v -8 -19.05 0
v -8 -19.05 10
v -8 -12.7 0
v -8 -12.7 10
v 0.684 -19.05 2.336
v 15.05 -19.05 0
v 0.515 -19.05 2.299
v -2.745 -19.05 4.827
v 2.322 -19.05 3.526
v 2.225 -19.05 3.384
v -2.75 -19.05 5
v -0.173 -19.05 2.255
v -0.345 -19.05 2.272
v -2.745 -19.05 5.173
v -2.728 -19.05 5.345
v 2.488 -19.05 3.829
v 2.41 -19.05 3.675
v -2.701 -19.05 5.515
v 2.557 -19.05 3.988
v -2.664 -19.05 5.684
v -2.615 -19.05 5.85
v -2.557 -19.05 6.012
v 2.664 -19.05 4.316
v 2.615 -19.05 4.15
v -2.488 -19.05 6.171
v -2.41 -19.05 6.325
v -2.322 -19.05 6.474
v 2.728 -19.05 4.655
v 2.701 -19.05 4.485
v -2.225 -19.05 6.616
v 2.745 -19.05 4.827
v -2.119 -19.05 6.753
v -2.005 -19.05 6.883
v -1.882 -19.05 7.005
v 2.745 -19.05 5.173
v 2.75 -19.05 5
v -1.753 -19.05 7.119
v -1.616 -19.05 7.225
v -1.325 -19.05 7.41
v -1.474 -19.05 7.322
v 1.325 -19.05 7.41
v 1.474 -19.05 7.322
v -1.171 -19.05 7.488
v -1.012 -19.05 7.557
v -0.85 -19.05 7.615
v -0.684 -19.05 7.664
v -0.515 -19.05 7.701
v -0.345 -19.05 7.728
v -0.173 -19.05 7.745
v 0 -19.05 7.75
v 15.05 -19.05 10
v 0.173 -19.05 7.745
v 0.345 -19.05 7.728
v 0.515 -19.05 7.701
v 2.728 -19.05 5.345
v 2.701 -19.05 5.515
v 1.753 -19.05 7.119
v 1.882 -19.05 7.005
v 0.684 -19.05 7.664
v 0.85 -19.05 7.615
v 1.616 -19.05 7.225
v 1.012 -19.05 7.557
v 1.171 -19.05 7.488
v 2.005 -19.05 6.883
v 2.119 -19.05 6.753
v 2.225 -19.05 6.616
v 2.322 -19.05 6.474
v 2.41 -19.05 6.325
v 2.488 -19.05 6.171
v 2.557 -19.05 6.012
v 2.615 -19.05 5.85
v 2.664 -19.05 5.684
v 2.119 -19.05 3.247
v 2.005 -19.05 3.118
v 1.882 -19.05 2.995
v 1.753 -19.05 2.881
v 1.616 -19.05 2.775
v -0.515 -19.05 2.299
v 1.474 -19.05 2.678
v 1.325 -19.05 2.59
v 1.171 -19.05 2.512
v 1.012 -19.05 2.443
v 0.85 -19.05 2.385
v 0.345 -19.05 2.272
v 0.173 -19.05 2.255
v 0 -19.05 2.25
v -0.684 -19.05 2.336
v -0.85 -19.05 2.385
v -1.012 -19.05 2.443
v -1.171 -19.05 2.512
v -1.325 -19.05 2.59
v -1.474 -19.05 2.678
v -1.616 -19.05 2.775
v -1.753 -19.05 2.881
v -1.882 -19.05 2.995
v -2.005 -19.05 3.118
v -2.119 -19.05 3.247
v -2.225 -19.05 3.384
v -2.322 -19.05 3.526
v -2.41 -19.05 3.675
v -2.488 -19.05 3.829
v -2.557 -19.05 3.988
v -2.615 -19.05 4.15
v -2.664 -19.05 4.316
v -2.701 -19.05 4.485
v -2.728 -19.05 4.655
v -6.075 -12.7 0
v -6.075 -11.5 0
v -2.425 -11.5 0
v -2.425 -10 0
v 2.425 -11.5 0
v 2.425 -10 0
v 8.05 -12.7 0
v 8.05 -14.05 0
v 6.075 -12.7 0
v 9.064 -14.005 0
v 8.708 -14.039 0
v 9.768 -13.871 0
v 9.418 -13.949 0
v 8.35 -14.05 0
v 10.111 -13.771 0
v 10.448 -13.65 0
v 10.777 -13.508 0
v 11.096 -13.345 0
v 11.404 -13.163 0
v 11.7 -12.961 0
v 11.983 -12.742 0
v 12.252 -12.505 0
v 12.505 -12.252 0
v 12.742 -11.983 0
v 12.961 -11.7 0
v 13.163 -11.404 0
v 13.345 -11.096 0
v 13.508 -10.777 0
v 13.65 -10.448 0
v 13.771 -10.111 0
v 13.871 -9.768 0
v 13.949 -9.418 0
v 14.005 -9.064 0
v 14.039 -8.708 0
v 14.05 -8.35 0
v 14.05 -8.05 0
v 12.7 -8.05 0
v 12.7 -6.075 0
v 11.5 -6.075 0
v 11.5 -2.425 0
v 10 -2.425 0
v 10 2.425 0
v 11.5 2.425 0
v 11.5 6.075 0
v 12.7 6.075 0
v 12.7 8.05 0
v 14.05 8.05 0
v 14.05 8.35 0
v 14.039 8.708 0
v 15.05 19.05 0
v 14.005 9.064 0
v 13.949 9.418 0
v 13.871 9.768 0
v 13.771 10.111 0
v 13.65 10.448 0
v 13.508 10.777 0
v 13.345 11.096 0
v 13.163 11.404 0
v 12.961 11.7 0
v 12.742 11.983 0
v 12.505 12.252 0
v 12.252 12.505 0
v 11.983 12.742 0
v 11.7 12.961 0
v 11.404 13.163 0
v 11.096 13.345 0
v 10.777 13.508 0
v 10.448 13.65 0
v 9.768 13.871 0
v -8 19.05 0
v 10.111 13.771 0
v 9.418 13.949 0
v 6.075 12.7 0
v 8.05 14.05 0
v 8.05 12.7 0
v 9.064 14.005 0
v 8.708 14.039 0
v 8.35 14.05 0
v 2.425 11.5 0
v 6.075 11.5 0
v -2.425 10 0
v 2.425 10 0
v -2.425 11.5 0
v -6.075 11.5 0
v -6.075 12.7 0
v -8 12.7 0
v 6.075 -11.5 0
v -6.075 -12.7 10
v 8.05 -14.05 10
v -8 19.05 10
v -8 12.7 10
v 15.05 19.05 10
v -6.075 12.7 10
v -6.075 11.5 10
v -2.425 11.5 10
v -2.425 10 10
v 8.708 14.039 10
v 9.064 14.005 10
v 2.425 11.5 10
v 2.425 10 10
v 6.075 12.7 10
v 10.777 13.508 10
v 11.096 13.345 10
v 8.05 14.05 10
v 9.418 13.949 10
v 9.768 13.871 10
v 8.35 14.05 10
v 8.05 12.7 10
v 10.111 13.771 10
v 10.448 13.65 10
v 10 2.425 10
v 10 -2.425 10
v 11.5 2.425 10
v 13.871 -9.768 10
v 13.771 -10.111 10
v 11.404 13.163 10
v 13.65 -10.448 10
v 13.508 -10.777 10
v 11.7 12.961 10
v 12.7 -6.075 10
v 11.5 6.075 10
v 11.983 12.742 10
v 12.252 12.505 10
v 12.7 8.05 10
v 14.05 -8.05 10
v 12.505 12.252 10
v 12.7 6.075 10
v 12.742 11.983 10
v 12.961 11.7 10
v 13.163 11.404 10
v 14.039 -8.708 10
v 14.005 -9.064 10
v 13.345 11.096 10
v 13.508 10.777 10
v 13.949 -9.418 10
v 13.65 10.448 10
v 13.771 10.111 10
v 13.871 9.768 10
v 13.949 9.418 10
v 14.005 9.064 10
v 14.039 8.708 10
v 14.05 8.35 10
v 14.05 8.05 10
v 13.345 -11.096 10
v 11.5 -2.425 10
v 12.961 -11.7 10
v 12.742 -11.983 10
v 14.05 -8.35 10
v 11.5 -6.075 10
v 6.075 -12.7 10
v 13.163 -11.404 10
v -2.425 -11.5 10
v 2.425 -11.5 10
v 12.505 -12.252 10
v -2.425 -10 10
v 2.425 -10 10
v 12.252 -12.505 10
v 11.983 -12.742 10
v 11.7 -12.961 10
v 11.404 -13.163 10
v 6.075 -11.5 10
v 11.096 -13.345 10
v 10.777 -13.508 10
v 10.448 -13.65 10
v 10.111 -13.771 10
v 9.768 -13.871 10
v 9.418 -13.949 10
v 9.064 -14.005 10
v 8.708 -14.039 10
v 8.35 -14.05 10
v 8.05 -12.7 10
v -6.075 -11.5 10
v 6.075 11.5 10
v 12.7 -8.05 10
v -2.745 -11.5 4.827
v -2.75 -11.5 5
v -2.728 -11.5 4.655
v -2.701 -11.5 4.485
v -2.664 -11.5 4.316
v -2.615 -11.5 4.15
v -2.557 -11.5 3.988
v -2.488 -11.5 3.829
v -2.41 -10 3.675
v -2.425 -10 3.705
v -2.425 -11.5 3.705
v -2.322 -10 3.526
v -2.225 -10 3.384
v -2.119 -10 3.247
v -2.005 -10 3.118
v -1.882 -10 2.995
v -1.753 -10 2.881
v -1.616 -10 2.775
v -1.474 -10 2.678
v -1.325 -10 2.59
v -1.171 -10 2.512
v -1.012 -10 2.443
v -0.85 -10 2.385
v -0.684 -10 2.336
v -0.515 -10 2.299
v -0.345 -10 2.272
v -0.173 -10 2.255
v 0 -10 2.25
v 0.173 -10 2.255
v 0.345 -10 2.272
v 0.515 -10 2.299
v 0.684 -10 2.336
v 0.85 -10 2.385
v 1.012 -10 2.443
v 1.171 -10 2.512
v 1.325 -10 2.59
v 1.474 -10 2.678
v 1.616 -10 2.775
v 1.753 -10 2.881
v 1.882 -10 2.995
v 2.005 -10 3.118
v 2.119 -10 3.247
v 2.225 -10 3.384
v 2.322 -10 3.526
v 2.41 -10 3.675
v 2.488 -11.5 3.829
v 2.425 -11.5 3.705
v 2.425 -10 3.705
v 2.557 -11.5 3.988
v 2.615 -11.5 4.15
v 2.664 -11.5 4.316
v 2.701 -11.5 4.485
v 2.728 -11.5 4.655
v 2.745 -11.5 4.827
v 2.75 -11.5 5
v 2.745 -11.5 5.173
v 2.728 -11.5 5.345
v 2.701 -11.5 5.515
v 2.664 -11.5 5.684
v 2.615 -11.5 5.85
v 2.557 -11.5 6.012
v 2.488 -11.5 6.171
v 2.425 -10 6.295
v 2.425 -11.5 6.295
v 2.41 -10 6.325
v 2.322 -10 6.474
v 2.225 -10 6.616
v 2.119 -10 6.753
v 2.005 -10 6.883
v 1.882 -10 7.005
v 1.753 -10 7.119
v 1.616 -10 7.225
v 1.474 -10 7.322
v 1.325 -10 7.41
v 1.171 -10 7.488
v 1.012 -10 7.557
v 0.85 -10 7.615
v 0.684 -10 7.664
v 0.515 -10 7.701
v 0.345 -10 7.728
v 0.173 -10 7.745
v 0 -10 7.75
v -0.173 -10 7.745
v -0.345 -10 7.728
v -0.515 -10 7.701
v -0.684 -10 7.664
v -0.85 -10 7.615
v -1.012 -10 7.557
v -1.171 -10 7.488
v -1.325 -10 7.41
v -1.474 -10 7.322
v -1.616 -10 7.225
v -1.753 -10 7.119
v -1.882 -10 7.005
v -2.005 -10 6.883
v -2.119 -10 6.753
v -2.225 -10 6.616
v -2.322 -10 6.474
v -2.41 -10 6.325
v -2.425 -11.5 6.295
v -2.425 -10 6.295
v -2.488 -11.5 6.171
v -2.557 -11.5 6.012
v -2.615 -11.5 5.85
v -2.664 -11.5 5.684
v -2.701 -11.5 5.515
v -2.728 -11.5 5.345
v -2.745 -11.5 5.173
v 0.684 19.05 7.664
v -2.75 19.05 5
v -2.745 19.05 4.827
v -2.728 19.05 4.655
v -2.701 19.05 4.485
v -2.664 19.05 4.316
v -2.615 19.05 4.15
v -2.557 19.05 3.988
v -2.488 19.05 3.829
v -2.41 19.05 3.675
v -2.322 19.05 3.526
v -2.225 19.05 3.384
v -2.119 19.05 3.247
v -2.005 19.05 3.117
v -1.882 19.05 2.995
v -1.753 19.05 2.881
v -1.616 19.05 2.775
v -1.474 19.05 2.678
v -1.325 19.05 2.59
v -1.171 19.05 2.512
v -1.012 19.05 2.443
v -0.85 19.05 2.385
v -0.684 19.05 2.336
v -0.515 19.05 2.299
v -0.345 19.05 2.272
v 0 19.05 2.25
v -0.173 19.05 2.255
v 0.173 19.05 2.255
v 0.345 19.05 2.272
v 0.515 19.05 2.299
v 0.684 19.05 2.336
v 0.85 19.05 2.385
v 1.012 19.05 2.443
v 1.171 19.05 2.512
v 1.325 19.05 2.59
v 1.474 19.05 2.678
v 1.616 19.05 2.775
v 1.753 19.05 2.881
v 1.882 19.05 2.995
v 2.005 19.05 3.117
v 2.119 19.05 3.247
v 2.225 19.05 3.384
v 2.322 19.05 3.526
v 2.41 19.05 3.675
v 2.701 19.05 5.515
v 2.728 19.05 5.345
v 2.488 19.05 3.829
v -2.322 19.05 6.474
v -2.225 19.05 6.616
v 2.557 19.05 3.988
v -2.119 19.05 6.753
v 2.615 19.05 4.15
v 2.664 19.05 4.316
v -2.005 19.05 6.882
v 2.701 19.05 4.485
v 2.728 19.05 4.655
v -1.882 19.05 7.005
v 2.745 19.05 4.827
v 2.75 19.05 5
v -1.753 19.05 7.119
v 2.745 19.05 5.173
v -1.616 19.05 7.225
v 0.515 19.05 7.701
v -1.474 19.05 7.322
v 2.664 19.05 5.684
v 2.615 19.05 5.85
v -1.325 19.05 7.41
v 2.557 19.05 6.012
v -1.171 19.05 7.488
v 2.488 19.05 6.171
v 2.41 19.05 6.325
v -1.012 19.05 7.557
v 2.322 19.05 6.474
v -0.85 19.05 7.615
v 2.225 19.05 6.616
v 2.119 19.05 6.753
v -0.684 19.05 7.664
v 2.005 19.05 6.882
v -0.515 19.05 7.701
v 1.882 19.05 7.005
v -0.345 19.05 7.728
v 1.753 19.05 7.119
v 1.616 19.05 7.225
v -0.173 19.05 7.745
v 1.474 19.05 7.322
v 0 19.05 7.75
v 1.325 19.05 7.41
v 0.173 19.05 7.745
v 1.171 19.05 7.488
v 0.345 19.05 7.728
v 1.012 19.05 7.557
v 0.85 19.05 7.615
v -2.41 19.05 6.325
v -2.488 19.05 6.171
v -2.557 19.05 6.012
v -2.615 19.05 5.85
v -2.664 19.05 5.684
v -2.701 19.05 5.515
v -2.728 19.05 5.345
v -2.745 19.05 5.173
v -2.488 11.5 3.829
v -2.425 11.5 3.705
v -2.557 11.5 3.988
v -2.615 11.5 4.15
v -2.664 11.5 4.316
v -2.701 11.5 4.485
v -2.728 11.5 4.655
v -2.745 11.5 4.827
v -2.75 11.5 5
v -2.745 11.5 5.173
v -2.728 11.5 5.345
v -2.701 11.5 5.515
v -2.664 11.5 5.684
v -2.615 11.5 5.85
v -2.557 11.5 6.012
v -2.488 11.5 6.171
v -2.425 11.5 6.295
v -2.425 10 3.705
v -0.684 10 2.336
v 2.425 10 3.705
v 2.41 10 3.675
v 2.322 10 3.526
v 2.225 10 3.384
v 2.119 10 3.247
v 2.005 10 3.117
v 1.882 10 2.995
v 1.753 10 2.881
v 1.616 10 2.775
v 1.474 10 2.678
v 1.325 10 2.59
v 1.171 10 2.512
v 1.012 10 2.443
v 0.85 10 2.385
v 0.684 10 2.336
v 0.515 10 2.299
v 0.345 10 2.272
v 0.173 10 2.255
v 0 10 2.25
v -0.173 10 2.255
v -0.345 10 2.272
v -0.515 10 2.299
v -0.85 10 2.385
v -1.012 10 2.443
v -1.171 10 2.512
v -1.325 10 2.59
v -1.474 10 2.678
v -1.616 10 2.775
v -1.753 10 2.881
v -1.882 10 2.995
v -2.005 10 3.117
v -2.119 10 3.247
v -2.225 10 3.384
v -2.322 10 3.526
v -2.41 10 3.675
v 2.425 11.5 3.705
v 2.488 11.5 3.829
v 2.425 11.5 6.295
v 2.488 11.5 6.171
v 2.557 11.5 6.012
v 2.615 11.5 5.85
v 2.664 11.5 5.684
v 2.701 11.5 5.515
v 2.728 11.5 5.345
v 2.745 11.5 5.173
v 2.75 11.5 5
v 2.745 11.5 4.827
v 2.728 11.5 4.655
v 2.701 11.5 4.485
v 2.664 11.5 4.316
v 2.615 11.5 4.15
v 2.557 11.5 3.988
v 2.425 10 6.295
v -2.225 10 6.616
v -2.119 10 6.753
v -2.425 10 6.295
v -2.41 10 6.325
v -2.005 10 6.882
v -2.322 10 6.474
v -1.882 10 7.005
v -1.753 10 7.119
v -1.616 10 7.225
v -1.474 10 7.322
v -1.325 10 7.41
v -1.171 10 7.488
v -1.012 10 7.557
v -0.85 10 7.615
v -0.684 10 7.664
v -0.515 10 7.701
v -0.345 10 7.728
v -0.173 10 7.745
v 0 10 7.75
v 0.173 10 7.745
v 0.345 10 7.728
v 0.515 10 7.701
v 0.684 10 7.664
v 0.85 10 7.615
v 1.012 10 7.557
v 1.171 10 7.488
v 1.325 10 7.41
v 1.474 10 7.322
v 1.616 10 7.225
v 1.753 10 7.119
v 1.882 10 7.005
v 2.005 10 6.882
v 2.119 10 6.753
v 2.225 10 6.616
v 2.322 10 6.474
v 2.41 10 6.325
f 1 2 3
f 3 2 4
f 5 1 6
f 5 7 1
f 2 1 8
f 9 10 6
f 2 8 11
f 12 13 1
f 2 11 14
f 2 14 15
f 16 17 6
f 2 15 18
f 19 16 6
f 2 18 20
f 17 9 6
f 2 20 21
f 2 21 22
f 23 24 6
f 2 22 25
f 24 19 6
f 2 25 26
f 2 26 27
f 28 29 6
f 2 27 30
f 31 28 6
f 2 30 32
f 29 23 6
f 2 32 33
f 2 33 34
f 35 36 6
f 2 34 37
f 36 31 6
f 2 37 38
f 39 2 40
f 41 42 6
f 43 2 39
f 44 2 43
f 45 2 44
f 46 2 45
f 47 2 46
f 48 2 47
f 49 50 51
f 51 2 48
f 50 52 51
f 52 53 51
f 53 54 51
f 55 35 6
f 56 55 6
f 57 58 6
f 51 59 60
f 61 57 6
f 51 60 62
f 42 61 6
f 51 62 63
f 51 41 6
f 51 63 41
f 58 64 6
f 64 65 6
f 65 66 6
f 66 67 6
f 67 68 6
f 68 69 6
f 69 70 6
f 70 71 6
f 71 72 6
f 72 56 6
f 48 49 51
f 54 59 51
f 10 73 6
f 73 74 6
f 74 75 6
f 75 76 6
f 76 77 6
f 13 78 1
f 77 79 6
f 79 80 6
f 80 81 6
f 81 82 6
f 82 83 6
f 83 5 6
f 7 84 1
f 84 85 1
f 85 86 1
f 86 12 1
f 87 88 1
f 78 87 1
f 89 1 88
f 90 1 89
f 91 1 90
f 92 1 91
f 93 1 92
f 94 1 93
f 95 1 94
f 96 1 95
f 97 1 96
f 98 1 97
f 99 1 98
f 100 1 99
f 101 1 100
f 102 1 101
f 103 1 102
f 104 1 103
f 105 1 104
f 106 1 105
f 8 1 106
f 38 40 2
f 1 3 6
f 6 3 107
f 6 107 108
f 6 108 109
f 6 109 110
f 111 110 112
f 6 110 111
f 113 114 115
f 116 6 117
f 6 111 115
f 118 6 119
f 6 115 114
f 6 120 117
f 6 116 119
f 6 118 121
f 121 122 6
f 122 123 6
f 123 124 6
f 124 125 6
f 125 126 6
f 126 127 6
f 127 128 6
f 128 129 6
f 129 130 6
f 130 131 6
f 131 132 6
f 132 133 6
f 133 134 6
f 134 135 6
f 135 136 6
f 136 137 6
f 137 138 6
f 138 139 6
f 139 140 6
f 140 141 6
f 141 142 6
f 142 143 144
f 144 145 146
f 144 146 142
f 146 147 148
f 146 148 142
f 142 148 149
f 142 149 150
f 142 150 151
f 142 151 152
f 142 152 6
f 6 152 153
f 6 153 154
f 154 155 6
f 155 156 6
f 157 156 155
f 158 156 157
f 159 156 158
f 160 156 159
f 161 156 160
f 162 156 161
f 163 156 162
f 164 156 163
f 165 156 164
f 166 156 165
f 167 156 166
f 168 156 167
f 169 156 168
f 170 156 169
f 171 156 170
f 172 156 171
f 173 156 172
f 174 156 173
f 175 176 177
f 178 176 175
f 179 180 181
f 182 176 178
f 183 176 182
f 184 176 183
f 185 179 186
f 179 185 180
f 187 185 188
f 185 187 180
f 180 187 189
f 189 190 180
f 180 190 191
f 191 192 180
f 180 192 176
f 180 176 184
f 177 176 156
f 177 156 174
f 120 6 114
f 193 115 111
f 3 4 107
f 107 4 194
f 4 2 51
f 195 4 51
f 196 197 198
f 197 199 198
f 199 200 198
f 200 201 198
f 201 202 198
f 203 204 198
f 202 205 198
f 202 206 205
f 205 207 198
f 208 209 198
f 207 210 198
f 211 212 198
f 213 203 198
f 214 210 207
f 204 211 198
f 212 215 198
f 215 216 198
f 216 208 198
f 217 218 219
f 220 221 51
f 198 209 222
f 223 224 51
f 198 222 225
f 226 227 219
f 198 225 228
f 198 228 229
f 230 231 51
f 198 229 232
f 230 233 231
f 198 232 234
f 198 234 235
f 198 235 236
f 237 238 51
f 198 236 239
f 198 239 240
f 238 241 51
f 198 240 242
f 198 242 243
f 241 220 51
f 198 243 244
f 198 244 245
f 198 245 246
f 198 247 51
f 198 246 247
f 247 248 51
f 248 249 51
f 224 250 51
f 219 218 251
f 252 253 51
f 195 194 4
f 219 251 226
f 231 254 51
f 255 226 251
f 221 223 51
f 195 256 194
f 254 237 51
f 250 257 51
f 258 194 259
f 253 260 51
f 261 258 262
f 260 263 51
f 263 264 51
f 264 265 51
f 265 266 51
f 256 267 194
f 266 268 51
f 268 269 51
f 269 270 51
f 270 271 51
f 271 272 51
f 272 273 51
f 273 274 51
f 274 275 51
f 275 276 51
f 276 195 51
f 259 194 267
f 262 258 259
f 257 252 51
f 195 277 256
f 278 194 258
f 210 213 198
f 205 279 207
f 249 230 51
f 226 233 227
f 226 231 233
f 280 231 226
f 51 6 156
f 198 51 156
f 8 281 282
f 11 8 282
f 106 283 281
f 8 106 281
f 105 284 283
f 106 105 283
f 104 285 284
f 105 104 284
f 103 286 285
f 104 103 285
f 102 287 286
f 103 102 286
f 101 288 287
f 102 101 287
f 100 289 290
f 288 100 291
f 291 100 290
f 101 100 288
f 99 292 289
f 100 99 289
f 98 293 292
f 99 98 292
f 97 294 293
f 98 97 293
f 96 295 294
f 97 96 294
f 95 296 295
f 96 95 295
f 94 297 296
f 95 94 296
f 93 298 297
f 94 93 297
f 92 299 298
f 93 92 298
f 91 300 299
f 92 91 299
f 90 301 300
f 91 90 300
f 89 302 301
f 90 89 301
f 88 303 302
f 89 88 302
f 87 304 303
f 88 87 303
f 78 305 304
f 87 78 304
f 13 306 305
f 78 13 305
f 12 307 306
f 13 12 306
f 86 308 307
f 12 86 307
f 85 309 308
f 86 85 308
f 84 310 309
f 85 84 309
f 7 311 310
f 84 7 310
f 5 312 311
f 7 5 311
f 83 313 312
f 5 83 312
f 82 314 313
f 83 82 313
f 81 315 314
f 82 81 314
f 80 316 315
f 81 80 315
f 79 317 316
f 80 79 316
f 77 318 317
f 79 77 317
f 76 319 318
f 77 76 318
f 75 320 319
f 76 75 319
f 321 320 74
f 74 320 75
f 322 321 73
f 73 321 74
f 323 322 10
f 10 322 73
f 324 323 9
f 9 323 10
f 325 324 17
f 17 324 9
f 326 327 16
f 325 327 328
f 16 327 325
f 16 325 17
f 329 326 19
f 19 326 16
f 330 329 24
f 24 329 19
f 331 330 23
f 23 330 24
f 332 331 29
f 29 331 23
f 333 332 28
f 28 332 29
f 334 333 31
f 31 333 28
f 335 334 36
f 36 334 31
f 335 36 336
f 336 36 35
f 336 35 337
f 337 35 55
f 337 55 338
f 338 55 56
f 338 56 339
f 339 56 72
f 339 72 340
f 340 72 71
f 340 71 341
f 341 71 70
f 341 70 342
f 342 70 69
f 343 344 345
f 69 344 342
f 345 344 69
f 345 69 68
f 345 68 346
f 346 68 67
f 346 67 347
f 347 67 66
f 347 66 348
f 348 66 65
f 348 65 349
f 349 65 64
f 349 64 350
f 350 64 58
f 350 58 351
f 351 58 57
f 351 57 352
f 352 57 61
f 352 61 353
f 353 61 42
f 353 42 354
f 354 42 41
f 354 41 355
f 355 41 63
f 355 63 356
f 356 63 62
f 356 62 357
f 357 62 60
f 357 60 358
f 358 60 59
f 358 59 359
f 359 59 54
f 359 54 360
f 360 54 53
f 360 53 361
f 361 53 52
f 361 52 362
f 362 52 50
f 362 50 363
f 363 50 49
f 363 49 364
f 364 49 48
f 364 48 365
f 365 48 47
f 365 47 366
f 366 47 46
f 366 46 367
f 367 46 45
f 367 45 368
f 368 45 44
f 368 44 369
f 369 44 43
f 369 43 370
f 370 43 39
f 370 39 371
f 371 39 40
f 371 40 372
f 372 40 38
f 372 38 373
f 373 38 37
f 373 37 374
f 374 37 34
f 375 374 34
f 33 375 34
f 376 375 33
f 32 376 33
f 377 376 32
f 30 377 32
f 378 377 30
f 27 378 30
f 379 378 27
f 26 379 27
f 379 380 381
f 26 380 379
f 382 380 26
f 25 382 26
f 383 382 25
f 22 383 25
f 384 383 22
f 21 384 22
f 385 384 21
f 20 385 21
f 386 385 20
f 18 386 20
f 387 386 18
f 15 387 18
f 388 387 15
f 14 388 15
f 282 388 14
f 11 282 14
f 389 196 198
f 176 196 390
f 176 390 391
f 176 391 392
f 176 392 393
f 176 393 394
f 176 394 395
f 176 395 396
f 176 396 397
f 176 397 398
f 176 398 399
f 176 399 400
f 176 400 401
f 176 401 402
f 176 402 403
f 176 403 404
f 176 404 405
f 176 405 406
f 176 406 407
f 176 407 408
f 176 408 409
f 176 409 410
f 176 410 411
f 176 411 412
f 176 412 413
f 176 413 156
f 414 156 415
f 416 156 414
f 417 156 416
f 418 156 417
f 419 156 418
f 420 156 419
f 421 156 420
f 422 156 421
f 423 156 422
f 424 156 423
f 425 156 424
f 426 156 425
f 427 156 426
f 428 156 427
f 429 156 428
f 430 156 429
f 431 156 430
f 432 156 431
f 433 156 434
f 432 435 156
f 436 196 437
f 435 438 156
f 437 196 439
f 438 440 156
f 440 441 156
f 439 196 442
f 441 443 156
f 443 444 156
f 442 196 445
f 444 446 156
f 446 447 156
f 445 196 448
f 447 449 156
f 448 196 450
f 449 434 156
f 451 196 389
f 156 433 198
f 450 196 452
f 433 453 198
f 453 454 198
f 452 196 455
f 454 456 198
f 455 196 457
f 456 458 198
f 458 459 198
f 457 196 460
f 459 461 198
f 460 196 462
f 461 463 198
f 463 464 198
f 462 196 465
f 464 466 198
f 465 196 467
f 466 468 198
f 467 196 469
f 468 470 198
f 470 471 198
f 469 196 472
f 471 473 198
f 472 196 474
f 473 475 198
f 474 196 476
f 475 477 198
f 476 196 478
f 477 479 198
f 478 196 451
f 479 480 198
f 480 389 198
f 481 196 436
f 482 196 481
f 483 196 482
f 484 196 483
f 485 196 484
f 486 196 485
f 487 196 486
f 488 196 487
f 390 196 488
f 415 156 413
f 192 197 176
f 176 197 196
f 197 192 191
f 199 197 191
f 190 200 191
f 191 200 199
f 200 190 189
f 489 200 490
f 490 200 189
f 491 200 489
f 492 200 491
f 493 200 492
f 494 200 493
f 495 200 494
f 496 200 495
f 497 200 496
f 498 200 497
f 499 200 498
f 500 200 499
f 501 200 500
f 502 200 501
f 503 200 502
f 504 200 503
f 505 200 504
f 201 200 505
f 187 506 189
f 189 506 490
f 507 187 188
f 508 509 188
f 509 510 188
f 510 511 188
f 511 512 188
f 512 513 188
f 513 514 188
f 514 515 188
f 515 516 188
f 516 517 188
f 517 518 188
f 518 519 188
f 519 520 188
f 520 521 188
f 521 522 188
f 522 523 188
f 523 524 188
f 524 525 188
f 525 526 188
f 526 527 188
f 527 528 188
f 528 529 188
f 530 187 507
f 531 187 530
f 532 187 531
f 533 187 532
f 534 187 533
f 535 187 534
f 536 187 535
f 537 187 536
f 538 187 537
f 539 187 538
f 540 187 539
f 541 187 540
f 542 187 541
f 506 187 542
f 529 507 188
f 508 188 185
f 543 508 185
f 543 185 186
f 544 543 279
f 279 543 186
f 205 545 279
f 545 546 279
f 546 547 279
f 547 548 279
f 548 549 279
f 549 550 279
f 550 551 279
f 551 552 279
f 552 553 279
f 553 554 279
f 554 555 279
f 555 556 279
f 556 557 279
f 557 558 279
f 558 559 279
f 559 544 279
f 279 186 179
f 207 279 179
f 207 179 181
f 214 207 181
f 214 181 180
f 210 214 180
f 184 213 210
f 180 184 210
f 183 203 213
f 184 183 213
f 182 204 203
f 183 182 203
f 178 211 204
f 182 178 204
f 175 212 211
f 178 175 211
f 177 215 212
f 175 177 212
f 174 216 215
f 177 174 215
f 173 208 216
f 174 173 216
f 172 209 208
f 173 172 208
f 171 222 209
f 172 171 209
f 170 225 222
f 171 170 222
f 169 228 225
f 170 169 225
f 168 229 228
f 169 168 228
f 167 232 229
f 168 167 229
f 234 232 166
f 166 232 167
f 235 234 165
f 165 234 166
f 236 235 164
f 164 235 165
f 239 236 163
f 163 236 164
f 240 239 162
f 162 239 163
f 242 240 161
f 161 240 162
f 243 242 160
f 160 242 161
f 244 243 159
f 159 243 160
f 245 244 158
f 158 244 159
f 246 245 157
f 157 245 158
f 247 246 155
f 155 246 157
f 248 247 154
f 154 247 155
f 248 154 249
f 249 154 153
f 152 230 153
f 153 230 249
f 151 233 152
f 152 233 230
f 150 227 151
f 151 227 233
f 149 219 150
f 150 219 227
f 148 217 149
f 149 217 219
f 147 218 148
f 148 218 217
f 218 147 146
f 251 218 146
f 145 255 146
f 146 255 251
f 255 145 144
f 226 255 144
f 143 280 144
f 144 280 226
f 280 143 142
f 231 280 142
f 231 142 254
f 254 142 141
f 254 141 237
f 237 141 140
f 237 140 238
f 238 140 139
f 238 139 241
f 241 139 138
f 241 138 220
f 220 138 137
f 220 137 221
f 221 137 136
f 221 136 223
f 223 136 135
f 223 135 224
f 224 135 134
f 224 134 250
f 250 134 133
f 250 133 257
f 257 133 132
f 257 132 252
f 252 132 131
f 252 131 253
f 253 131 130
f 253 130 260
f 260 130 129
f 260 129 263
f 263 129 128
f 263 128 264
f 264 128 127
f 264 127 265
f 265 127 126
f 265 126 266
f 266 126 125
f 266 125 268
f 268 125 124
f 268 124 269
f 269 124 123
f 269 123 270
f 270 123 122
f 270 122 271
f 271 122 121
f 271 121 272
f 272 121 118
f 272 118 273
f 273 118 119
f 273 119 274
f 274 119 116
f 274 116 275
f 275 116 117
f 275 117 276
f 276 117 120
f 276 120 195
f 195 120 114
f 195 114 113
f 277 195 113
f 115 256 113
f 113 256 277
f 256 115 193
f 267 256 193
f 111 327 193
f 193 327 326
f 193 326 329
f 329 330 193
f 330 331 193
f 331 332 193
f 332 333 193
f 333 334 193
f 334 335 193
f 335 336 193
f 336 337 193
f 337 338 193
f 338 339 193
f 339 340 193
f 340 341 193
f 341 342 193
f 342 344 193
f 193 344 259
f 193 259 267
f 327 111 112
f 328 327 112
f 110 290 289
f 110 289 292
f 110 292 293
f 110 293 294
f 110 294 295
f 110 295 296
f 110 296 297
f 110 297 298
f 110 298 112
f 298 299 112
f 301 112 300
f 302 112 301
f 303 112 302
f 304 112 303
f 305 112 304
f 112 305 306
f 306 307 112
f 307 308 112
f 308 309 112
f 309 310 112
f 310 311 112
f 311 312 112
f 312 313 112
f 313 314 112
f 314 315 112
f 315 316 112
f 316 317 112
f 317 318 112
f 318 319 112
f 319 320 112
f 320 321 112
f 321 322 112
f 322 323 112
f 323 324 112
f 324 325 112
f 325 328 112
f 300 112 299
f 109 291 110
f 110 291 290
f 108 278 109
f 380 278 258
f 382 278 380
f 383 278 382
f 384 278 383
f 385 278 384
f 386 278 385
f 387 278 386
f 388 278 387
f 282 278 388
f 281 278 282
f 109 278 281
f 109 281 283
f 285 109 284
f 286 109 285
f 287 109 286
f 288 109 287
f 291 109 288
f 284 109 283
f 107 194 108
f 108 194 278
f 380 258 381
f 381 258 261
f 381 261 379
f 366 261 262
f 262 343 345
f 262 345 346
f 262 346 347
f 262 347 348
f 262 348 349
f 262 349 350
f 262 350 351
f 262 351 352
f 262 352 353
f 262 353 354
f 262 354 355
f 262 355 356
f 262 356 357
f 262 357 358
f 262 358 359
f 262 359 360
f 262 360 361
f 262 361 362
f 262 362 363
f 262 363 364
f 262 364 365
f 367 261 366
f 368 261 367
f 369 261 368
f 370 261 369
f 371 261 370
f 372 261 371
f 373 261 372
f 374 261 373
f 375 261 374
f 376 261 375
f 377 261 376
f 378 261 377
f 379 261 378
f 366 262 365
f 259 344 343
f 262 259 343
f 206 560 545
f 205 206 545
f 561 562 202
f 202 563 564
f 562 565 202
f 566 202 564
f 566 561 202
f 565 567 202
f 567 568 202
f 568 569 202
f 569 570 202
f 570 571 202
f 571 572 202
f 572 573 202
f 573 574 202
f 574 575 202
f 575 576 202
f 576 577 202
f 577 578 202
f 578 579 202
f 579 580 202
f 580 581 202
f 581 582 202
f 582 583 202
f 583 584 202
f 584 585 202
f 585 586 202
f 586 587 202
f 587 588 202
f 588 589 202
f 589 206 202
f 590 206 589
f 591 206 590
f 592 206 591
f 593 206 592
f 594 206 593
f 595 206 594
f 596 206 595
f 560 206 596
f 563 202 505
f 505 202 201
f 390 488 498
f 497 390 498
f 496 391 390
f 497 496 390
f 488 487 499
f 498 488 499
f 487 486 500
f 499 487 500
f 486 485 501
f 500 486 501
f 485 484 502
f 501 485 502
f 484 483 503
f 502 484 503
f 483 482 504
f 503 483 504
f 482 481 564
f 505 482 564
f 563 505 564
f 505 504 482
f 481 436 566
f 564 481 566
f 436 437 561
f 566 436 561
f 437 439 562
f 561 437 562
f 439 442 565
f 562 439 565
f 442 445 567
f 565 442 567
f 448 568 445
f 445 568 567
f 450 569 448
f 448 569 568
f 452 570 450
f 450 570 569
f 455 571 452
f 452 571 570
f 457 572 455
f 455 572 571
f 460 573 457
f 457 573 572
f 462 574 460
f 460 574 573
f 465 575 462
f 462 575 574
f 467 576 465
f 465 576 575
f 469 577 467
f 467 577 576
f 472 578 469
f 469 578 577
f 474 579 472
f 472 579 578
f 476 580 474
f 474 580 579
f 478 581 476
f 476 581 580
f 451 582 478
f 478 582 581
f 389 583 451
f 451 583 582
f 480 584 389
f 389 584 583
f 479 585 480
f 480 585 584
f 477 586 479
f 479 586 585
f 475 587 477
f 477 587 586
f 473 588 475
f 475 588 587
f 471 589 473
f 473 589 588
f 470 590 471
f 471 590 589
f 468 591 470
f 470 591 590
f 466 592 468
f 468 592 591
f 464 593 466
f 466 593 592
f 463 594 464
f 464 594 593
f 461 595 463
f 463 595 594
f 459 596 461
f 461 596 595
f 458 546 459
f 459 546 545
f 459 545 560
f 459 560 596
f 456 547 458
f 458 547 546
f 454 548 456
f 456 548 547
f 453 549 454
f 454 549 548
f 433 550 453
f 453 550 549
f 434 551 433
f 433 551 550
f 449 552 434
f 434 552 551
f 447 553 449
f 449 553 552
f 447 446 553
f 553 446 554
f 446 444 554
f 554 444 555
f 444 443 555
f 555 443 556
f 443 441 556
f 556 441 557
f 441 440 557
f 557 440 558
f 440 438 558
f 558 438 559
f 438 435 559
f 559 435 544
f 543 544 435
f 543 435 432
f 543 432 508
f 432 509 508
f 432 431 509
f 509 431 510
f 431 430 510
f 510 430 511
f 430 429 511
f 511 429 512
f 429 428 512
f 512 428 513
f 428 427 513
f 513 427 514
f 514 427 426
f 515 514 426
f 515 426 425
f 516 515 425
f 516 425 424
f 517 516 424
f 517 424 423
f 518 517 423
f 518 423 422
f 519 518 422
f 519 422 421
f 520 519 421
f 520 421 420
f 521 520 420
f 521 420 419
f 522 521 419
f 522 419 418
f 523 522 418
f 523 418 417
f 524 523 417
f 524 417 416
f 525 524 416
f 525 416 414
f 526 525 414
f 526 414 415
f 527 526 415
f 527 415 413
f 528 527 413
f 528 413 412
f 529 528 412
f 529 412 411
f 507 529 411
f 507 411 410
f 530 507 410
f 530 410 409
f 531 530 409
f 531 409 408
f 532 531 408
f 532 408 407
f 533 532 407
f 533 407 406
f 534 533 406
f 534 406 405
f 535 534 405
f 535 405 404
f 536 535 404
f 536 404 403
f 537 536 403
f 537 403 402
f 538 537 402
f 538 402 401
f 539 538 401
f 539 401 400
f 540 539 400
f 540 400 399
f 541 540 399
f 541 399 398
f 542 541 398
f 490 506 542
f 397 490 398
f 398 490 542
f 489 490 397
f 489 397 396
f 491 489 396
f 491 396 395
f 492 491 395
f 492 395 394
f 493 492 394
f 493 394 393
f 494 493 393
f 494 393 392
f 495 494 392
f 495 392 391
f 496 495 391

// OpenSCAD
// file: frame_profile.scad
frame_profile(h = 5);
/*
difference()
{
	translate([5, 0, 0]) cube([26, 35, 5], center = true);
	translate([0, 0, -10 / 2]) frame_profile(10);
}
*/

module frame_profile(h)
{
	$fn = 100;

	// p = profile
	p_width = 27.5 + 0.2;
	p_corner_r = 5.7;
	p_first_step_width = 16.3 - 0.2;
	p_first_step_height = 1.15;
	p_second_step_width = 12.35 - 0.2;
	p_second_step_height = 1.2;
	p_third_step_width = 5.05 - 0.2;
	p_third_step_height = 1.5; // 6.15;

	difference()
	{
		hull()
		{
			translate([(p_width / 2) - p_corner_r + 0.2, (p_width / 2) - p_corner_r + 0.2, 0])
				cylinder(r = p_corner_r, h = h);
	
			translate([(p_width / 2) - p_corner_r + 0.2, -((p_width / 2) - p_corner_r + 0.2), 0])
				cylinder(r = p_corner_r, h = h);
	
			translate([-((p_width / 2) - p_corner_r + 0.2), (p_width / 2) - p_corner_r + 0.2, 0])
				cylinder(r = p_corner_r, h = h);
	
			translate(-[(p_width / 2) - p_corner_r + 0.2, (p_width / 2) - p_corner_r + 0.2, 0])
				cylinder(r = p_corner_r, h = h);
		}

		for( i = [0 : 1 : 3] )
		{
			rotate(i * 90, v = [0, 0, 1])
				translate([(p_width / 2) - p_first_step_height, -(p_first_step_width / 2), -1])
					cube([p_first_step_width, p_first_step_width, (h + 2)]);

			rotate(i * 90, v = [0, 0, 1])
				translate([(p_width / 2) - p_second_step_height - p_first_step_height, -(p_second_step_width / 2), -1])
					cube([p_second_step_width, p_second_step_width, (h + 2)]);

			rotate(i * 90, v = [0, 0, 1])
				translate([(p_width / 2) - p_third_step_height - p_second_step_height - p_first_step_height, -(p_third_step_width / 2), -1])
					cube([p_third_step_width, p_third_step_width, (h + 2)]);
		}
	}
}
// main file
use <frame_profile.scad>;

frame_clamp(1,5,10);

module frame_clamp(dx=1,dy=1,z=5) {

    difference() {
        translate([-8,-14.05-dy,0]) cube([22.05+dx, 28.1+2*dy, z]);
        translate([0,0,-1]) frame_profile(z+2);
        translate([0,0,z/2]) rotate([90,0,0]) cylinder(r=5.5/2,h=28.1+2*dy+2,center=true,$fn=100);
    }

}
